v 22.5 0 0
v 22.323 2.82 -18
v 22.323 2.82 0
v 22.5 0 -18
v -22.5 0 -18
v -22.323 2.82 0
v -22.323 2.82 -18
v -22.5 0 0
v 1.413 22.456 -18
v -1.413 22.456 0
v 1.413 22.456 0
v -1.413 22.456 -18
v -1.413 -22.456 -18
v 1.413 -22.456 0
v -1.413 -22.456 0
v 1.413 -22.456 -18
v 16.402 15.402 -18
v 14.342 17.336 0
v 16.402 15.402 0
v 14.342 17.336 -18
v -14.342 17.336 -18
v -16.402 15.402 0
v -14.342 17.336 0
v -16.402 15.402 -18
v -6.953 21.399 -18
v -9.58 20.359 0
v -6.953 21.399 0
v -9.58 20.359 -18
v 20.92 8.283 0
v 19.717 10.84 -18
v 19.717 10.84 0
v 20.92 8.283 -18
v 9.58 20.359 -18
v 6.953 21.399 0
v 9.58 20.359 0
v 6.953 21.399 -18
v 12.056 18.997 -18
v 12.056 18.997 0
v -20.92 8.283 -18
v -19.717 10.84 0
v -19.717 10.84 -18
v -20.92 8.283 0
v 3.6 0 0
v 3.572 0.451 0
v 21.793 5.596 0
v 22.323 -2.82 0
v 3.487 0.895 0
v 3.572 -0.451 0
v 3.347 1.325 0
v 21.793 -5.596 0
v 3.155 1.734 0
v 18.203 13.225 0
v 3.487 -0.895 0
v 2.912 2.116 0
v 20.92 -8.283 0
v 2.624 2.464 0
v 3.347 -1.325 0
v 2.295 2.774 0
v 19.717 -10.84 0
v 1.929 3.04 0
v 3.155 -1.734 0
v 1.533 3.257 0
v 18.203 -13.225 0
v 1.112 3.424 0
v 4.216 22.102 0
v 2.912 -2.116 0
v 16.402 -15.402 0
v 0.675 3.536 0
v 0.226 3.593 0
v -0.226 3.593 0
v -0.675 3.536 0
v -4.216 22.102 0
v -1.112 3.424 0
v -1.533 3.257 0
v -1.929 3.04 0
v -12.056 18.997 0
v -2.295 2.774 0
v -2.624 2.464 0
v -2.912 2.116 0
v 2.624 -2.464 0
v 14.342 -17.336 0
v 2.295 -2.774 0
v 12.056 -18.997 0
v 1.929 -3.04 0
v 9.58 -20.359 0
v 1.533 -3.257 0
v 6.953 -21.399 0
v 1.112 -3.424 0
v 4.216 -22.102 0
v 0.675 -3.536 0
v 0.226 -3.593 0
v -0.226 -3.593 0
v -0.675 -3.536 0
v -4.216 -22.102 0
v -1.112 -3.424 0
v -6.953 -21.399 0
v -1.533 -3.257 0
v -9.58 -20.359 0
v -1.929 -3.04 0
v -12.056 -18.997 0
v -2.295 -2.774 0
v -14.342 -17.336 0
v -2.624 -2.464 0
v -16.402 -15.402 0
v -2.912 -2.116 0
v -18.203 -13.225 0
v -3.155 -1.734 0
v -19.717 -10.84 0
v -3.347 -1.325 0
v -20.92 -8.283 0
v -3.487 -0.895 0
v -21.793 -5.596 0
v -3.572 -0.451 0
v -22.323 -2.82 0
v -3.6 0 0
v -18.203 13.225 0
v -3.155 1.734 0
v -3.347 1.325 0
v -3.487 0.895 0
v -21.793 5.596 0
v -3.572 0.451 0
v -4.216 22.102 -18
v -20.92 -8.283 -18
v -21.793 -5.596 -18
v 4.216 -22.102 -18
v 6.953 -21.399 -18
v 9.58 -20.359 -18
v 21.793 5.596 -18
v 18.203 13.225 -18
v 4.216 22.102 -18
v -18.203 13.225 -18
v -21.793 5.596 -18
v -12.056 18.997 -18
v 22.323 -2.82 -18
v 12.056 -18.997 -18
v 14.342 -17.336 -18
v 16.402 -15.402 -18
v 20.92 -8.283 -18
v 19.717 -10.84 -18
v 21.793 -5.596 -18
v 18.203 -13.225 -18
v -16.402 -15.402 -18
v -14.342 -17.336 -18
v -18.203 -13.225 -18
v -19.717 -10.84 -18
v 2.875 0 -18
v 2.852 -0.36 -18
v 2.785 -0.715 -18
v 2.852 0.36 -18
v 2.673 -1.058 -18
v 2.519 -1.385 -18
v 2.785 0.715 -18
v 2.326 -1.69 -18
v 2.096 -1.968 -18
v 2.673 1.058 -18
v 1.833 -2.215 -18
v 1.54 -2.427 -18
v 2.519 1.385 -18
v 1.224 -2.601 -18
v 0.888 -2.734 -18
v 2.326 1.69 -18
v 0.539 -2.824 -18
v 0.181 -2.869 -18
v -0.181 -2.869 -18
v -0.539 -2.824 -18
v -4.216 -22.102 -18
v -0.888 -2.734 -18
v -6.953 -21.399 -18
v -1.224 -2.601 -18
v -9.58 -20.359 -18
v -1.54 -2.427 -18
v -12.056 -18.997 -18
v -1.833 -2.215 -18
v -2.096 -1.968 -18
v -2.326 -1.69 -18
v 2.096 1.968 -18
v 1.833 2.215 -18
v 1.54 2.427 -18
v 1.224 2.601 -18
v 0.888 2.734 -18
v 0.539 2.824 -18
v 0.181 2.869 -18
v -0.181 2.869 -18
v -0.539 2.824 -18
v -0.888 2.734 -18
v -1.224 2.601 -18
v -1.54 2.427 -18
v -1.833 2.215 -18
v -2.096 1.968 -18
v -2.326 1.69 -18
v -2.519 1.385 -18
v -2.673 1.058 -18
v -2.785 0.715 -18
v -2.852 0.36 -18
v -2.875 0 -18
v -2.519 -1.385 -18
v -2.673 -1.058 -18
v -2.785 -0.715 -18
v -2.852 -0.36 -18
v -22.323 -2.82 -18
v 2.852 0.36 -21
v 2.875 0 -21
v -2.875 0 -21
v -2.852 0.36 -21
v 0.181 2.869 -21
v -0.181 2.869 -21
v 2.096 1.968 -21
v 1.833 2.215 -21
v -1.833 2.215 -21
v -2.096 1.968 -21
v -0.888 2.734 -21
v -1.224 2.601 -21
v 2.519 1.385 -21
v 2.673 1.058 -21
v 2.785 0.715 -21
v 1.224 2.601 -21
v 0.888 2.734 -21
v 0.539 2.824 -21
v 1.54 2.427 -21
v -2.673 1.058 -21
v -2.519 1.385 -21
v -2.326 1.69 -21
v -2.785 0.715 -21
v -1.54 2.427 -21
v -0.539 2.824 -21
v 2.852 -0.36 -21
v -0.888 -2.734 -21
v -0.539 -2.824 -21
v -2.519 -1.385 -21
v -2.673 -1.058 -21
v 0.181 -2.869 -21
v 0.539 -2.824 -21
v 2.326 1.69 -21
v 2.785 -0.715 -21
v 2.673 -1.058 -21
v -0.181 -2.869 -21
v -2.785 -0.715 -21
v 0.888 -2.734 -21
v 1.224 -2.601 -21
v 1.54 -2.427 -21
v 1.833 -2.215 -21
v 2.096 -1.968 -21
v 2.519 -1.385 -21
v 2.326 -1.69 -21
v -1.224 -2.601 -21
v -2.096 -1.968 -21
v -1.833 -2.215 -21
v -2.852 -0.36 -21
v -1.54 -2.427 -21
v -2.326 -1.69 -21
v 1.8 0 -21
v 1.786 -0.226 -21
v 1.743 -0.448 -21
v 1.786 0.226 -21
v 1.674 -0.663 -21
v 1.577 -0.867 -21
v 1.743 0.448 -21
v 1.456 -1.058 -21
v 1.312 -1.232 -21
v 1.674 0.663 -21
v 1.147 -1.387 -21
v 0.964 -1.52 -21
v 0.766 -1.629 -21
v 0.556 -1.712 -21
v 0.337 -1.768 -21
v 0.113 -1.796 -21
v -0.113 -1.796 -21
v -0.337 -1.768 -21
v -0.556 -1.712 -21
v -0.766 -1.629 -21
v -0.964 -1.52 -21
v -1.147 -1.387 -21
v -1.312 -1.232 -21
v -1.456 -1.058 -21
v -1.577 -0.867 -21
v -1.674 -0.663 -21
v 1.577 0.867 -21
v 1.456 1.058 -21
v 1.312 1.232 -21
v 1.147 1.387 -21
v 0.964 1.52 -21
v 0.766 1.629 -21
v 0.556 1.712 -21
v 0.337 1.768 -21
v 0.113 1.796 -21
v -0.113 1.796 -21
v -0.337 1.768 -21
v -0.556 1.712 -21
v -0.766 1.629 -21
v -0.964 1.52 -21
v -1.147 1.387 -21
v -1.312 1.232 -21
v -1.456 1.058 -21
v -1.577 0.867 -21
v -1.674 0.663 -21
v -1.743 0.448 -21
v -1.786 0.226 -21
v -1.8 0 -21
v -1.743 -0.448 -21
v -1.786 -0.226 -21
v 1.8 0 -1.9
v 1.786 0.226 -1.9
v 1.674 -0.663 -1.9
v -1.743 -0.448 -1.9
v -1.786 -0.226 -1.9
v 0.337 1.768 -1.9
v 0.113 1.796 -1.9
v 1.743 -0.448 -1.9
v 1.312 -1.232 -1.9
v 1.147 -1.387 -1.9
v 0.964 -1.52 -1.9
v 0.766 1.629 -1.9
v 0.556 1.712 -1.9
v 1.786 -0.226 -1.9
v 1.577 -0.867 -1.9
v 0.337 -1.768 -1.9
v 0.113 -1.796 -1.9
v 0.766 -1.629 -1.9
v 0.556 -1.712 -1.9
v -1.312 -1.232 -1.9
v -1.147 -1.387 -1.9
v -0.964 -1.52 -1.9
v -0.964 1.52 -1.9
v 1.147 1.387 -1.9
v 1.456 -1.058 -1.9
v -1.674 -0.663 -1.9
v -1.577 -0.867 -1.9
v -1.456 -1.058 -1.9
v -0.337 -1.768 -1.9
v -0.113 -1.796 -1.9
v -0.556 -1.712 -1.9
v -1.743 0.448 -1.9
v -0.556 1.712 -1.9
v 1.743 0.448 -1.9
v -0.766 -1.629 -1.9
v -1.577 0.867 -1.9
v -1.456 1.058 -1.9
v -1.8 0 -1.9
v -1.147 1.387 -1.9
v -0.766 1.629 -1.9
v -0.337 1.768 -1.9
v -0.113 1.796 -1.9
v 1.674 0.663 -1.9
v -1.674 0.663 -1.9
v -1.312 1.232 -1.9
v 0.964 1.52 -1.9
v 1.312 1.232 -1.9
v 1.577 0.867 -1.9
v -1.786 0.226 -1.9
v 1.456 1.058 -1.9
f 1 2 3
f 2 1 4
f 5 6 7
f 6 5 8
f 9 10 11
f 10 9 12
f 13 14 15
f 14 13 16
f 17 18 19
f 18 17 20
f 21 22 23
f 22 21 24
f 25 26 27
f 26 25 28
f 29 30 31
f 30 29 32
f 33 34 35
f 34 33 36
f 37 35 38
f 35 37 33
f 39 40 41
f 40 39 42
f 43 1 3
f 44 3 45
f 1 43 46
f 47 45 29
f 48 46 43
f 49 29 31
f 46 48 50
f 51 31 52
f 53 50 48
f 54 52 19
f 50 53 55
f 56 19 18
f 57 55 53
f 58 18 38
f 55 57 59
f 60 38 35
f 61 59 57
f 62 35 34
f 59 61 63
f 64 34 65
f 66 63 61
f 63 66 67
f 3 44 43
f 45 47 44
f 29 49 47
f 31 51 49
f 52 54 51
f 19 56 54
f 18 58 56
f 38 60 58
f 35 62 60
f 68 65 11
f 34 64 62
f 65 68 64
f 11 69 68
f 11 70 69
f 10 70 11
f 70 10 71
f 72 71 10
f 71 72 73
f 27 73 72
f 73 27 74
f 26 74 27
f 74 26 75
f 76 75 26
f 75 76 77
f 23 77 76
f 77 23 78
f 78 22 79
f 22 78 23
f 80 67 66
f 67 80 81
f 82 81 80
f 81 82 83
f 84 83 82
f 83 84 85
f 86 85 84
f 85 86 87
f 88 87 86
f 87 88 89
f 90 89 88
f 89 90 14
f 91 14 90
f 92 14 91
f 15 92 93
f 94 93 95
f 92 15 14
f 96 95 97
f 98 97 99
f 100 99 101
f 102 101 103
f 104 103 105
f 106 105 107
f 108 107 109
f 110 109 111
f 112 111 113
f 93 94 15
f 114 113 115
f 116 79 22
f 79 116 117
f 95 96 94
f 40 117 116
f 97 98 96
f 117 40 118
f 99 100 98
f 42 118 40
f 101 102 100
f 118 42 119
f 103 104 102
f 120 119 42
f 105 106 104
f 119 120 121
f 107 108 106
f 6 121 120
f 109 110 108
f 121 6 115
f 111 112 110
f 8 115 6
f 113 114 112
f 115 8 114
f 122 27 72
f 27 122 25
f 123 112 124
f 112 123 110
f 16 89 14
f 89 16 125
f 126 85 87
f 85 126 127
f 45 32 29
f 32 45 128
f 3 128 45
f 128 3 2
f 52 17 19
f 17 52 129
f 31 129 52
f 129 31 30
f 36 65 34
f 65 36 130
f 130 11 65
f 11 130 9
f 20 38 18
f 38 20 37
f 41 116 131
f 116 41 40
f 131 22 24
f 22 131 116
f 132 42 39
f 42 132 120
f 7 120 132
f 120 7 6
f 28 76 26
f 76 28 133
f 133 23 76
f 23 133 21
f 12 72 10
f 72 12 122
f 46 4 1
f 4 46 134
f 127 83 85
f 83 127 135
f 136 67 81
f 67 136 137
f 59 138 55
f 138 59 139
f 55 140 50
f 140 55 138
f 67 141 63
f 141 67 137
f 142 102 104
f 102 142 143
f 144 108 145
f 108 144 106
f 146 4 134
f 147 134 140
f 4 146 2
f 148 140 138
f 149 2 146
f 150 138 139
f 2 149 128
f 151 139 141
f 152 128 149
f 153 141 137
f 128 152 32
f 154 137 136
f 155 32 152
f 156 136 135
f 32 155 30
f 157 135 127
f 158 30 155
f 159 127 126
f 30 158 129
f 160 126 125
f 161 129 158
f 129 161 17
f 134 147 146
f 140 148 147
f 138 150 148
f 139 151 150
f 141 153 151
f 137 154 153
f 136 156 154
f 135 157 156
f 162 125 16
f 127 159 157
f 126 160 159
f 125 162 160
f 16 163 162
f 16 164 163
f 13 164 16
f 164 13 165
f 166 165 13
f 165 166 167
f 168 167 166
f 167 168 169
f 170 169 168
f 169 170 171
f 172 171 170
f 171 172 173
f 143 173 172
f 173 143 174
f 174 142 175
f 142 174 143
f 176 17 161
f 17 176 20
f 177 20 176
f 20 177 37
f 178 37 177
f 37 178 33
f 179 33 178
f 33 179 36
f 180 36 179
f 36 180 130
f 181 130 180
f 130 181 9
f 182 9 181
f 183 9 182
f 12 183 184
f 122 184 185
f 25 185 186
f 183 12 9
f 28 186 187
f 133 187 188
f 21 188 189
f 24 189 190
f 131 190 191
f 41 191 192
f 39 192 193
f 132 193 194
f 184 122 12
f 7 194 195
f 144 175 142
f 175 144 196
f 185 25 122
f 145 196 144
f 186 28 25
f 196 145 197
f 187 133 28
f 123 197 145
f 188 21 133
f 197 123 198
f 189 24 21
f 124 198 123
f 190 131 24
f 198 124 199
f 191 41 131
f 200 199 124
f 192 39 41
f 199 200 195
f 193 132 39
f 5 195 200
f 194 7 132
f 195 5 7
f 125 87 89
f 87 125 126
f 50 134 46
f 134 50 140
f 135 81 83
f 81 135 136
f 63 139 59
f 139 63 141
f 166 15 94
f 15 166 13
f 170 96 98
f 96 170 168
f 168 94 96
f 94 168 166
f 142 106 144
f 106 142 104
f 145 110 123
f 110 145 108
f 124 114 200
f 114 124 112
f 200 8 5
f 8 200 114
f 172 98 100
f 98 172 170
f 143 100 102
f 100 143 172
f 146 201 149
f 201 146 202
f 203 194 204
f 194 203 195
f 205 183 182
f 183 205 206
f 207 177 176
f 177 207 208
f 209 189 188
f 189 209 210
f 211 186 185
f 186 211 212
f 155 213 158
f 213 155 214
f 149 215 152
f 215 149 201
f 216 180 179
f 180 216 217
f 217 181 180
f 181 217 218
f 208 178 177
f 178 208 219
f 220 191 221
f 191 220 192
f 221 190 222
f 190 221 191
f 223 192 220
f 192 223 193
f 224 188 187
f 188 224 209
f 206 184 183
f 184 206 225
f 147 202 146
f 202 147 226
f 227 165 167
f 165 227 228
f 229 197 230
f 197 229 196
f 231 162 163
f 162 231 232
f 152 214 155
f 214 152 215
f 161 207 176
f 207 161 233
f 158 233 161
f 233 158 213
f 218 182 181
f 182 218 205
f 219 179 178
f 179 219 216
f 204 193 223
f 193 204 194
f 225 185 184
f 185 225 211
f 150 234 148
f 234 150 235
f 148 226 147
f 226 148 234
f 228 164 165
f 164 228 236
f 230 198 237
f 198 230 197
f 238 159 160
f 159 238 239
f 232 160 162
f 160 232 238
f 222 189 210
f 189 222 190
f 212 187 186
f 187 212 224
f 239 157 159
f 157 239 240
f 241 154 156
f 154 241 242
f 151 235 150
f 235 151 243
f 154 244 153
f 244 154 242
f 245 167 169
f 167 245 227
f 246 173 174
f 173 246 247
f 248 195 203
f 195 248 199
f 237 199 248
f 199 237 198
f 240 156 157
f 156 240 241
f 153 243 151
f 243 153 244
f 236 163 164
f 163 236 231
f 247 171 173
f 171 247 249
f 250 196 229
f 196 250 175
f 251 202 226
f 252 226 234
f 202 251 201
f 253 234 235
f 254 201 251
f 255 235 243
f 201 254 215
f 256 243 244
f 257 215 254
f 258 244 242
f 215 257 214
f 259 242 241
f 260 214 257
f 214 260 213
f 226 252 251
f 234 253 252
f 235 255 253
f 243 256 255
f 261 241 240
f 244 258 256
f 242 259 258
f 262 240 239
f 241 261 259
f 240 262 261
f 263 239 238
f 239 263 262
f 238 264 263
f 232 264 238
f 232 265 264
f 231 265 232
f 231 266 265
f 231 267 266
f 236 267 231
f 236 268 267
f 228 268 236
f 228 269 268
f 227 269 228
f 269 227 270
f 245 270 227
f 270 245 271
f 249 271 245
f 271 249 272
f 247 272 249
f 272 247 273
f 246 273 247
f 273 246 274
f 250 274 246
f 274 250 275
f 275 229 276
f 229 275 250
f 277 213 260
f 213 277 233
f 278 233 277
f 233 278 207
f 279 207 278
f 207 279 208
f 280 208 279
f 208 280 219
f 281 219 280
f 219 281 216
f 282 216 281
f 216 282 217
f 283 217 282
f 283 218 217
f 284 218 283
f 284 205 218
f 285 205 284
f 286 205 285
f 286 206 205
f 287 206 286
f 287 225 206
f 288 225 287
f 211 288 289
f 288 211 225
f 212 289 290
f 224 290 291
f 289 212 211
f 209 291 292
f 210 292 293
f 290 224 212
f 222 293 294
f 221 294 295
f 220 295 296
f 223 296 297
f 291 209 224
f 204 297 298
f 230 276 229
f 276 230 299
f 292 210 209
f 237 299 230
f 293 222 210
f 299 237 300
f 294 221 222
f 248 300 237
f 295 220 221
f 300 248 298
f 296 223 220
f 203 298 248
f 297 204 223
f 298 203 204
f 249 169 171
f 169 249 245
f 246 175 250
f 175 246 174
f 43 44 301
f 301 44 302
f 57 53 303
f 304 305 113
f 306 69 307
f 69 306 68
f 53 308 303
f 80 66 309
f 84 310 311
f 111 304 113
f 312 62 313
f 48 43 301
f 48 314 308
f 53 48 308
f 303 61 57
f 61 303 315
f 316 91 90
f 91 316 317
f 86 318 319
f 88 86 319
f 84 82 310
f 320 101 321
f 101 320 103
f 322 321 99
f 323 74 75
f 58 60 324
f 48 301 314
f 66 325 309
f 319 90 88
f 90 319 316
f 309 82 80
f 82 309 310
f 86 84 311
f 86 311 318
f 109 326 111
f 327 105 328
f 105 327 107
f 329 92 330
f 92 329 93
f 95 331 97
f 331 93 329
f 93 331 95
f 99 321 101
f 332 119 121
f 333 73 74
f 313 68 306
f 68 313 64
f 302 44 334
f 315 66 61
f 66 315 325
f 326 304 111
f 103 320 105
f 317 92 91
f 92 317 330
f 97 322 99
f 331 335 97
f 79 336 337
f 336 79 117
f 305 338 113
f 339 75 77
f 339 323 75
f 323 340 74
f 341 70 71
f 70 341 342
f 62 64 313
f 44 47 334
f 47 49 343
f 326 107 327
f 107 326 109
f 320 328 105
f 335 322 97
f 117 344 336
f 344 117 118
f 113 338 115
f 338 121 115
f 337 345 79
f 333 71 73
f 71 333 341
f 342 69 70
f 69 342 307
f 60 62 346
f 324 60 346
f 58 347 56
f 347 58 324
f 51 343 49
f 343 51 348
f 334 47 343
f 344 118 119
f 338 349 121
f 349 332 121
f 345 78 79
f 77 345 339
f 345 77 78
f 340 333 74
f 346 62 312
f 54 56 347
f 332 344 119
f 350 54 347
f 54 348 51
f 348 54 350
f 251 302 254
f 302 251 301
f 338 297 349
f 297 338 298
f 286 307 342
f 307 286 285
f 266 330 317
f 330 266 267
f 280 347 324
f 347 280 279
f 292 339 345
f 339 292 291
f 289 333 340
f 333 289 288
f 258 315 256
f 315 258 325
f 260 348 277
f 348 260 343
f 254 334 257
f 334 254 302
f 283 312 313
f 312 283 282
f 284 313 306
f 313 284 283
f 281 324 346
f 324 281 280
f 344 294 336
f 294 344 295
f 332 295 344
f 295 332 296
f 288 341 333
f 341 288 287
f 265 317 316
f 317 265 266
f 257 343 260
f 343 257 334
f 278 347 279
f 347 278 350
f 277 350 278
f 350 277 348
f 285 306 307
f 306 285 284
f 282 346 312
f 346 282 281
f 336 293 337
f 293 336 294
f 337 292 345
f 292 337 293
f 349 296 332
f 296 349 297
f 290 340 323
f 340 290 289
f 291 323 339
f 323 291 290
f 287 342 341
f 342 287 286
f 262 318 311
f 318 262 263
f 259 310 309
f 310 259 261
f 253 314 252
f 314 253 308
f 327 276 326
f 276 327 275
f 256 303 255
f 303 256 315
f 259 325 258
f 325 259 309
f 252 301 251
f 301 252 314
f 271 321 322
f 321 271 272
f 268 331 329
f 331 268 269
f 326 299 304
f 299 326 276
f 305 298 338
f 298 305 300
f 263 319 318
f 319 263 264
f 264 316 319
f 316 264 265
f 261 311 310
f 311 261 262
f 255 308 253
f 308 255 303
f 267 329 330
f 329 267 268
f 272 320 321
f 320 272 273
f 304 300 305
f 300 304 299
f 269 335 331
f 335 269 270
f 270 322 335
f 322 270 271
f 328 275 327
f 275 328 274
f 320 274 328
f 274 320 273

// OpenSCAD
$fn = 50;

difference() {
	union() {
		translate(v = [0, 0, -18.0]) {
			cylinder(h = 18, r = 22.5);
		}
		#translate(v = [0, 0, -21.0]) {
			cylinder(h = 21, r = 2.875);
		}
	}
	union() {
		translate(v = [0, 0, 0]) {
			rotate(a = [0, 0, 0]) {
				difference() {
					union() {
						translate(v = [0, 0, -21.0]) {
							cylinder(h = 21, r = 1.5);
						}
						translate(v = [0, 0, -1.9]) {
							cylinder(h = 1.9, r1 = 1.8, r2 = 3.6);
						}
						translate(v = [0, 0, -21.0]) {
							cylinder(h = 21, r = 1.8);
						}
						translate(v = [0, 0, -21.0]) {
							cylinder(h = 21, r = 1.5);
						}
					}
					union();
				}
			}
		}
	}
}
